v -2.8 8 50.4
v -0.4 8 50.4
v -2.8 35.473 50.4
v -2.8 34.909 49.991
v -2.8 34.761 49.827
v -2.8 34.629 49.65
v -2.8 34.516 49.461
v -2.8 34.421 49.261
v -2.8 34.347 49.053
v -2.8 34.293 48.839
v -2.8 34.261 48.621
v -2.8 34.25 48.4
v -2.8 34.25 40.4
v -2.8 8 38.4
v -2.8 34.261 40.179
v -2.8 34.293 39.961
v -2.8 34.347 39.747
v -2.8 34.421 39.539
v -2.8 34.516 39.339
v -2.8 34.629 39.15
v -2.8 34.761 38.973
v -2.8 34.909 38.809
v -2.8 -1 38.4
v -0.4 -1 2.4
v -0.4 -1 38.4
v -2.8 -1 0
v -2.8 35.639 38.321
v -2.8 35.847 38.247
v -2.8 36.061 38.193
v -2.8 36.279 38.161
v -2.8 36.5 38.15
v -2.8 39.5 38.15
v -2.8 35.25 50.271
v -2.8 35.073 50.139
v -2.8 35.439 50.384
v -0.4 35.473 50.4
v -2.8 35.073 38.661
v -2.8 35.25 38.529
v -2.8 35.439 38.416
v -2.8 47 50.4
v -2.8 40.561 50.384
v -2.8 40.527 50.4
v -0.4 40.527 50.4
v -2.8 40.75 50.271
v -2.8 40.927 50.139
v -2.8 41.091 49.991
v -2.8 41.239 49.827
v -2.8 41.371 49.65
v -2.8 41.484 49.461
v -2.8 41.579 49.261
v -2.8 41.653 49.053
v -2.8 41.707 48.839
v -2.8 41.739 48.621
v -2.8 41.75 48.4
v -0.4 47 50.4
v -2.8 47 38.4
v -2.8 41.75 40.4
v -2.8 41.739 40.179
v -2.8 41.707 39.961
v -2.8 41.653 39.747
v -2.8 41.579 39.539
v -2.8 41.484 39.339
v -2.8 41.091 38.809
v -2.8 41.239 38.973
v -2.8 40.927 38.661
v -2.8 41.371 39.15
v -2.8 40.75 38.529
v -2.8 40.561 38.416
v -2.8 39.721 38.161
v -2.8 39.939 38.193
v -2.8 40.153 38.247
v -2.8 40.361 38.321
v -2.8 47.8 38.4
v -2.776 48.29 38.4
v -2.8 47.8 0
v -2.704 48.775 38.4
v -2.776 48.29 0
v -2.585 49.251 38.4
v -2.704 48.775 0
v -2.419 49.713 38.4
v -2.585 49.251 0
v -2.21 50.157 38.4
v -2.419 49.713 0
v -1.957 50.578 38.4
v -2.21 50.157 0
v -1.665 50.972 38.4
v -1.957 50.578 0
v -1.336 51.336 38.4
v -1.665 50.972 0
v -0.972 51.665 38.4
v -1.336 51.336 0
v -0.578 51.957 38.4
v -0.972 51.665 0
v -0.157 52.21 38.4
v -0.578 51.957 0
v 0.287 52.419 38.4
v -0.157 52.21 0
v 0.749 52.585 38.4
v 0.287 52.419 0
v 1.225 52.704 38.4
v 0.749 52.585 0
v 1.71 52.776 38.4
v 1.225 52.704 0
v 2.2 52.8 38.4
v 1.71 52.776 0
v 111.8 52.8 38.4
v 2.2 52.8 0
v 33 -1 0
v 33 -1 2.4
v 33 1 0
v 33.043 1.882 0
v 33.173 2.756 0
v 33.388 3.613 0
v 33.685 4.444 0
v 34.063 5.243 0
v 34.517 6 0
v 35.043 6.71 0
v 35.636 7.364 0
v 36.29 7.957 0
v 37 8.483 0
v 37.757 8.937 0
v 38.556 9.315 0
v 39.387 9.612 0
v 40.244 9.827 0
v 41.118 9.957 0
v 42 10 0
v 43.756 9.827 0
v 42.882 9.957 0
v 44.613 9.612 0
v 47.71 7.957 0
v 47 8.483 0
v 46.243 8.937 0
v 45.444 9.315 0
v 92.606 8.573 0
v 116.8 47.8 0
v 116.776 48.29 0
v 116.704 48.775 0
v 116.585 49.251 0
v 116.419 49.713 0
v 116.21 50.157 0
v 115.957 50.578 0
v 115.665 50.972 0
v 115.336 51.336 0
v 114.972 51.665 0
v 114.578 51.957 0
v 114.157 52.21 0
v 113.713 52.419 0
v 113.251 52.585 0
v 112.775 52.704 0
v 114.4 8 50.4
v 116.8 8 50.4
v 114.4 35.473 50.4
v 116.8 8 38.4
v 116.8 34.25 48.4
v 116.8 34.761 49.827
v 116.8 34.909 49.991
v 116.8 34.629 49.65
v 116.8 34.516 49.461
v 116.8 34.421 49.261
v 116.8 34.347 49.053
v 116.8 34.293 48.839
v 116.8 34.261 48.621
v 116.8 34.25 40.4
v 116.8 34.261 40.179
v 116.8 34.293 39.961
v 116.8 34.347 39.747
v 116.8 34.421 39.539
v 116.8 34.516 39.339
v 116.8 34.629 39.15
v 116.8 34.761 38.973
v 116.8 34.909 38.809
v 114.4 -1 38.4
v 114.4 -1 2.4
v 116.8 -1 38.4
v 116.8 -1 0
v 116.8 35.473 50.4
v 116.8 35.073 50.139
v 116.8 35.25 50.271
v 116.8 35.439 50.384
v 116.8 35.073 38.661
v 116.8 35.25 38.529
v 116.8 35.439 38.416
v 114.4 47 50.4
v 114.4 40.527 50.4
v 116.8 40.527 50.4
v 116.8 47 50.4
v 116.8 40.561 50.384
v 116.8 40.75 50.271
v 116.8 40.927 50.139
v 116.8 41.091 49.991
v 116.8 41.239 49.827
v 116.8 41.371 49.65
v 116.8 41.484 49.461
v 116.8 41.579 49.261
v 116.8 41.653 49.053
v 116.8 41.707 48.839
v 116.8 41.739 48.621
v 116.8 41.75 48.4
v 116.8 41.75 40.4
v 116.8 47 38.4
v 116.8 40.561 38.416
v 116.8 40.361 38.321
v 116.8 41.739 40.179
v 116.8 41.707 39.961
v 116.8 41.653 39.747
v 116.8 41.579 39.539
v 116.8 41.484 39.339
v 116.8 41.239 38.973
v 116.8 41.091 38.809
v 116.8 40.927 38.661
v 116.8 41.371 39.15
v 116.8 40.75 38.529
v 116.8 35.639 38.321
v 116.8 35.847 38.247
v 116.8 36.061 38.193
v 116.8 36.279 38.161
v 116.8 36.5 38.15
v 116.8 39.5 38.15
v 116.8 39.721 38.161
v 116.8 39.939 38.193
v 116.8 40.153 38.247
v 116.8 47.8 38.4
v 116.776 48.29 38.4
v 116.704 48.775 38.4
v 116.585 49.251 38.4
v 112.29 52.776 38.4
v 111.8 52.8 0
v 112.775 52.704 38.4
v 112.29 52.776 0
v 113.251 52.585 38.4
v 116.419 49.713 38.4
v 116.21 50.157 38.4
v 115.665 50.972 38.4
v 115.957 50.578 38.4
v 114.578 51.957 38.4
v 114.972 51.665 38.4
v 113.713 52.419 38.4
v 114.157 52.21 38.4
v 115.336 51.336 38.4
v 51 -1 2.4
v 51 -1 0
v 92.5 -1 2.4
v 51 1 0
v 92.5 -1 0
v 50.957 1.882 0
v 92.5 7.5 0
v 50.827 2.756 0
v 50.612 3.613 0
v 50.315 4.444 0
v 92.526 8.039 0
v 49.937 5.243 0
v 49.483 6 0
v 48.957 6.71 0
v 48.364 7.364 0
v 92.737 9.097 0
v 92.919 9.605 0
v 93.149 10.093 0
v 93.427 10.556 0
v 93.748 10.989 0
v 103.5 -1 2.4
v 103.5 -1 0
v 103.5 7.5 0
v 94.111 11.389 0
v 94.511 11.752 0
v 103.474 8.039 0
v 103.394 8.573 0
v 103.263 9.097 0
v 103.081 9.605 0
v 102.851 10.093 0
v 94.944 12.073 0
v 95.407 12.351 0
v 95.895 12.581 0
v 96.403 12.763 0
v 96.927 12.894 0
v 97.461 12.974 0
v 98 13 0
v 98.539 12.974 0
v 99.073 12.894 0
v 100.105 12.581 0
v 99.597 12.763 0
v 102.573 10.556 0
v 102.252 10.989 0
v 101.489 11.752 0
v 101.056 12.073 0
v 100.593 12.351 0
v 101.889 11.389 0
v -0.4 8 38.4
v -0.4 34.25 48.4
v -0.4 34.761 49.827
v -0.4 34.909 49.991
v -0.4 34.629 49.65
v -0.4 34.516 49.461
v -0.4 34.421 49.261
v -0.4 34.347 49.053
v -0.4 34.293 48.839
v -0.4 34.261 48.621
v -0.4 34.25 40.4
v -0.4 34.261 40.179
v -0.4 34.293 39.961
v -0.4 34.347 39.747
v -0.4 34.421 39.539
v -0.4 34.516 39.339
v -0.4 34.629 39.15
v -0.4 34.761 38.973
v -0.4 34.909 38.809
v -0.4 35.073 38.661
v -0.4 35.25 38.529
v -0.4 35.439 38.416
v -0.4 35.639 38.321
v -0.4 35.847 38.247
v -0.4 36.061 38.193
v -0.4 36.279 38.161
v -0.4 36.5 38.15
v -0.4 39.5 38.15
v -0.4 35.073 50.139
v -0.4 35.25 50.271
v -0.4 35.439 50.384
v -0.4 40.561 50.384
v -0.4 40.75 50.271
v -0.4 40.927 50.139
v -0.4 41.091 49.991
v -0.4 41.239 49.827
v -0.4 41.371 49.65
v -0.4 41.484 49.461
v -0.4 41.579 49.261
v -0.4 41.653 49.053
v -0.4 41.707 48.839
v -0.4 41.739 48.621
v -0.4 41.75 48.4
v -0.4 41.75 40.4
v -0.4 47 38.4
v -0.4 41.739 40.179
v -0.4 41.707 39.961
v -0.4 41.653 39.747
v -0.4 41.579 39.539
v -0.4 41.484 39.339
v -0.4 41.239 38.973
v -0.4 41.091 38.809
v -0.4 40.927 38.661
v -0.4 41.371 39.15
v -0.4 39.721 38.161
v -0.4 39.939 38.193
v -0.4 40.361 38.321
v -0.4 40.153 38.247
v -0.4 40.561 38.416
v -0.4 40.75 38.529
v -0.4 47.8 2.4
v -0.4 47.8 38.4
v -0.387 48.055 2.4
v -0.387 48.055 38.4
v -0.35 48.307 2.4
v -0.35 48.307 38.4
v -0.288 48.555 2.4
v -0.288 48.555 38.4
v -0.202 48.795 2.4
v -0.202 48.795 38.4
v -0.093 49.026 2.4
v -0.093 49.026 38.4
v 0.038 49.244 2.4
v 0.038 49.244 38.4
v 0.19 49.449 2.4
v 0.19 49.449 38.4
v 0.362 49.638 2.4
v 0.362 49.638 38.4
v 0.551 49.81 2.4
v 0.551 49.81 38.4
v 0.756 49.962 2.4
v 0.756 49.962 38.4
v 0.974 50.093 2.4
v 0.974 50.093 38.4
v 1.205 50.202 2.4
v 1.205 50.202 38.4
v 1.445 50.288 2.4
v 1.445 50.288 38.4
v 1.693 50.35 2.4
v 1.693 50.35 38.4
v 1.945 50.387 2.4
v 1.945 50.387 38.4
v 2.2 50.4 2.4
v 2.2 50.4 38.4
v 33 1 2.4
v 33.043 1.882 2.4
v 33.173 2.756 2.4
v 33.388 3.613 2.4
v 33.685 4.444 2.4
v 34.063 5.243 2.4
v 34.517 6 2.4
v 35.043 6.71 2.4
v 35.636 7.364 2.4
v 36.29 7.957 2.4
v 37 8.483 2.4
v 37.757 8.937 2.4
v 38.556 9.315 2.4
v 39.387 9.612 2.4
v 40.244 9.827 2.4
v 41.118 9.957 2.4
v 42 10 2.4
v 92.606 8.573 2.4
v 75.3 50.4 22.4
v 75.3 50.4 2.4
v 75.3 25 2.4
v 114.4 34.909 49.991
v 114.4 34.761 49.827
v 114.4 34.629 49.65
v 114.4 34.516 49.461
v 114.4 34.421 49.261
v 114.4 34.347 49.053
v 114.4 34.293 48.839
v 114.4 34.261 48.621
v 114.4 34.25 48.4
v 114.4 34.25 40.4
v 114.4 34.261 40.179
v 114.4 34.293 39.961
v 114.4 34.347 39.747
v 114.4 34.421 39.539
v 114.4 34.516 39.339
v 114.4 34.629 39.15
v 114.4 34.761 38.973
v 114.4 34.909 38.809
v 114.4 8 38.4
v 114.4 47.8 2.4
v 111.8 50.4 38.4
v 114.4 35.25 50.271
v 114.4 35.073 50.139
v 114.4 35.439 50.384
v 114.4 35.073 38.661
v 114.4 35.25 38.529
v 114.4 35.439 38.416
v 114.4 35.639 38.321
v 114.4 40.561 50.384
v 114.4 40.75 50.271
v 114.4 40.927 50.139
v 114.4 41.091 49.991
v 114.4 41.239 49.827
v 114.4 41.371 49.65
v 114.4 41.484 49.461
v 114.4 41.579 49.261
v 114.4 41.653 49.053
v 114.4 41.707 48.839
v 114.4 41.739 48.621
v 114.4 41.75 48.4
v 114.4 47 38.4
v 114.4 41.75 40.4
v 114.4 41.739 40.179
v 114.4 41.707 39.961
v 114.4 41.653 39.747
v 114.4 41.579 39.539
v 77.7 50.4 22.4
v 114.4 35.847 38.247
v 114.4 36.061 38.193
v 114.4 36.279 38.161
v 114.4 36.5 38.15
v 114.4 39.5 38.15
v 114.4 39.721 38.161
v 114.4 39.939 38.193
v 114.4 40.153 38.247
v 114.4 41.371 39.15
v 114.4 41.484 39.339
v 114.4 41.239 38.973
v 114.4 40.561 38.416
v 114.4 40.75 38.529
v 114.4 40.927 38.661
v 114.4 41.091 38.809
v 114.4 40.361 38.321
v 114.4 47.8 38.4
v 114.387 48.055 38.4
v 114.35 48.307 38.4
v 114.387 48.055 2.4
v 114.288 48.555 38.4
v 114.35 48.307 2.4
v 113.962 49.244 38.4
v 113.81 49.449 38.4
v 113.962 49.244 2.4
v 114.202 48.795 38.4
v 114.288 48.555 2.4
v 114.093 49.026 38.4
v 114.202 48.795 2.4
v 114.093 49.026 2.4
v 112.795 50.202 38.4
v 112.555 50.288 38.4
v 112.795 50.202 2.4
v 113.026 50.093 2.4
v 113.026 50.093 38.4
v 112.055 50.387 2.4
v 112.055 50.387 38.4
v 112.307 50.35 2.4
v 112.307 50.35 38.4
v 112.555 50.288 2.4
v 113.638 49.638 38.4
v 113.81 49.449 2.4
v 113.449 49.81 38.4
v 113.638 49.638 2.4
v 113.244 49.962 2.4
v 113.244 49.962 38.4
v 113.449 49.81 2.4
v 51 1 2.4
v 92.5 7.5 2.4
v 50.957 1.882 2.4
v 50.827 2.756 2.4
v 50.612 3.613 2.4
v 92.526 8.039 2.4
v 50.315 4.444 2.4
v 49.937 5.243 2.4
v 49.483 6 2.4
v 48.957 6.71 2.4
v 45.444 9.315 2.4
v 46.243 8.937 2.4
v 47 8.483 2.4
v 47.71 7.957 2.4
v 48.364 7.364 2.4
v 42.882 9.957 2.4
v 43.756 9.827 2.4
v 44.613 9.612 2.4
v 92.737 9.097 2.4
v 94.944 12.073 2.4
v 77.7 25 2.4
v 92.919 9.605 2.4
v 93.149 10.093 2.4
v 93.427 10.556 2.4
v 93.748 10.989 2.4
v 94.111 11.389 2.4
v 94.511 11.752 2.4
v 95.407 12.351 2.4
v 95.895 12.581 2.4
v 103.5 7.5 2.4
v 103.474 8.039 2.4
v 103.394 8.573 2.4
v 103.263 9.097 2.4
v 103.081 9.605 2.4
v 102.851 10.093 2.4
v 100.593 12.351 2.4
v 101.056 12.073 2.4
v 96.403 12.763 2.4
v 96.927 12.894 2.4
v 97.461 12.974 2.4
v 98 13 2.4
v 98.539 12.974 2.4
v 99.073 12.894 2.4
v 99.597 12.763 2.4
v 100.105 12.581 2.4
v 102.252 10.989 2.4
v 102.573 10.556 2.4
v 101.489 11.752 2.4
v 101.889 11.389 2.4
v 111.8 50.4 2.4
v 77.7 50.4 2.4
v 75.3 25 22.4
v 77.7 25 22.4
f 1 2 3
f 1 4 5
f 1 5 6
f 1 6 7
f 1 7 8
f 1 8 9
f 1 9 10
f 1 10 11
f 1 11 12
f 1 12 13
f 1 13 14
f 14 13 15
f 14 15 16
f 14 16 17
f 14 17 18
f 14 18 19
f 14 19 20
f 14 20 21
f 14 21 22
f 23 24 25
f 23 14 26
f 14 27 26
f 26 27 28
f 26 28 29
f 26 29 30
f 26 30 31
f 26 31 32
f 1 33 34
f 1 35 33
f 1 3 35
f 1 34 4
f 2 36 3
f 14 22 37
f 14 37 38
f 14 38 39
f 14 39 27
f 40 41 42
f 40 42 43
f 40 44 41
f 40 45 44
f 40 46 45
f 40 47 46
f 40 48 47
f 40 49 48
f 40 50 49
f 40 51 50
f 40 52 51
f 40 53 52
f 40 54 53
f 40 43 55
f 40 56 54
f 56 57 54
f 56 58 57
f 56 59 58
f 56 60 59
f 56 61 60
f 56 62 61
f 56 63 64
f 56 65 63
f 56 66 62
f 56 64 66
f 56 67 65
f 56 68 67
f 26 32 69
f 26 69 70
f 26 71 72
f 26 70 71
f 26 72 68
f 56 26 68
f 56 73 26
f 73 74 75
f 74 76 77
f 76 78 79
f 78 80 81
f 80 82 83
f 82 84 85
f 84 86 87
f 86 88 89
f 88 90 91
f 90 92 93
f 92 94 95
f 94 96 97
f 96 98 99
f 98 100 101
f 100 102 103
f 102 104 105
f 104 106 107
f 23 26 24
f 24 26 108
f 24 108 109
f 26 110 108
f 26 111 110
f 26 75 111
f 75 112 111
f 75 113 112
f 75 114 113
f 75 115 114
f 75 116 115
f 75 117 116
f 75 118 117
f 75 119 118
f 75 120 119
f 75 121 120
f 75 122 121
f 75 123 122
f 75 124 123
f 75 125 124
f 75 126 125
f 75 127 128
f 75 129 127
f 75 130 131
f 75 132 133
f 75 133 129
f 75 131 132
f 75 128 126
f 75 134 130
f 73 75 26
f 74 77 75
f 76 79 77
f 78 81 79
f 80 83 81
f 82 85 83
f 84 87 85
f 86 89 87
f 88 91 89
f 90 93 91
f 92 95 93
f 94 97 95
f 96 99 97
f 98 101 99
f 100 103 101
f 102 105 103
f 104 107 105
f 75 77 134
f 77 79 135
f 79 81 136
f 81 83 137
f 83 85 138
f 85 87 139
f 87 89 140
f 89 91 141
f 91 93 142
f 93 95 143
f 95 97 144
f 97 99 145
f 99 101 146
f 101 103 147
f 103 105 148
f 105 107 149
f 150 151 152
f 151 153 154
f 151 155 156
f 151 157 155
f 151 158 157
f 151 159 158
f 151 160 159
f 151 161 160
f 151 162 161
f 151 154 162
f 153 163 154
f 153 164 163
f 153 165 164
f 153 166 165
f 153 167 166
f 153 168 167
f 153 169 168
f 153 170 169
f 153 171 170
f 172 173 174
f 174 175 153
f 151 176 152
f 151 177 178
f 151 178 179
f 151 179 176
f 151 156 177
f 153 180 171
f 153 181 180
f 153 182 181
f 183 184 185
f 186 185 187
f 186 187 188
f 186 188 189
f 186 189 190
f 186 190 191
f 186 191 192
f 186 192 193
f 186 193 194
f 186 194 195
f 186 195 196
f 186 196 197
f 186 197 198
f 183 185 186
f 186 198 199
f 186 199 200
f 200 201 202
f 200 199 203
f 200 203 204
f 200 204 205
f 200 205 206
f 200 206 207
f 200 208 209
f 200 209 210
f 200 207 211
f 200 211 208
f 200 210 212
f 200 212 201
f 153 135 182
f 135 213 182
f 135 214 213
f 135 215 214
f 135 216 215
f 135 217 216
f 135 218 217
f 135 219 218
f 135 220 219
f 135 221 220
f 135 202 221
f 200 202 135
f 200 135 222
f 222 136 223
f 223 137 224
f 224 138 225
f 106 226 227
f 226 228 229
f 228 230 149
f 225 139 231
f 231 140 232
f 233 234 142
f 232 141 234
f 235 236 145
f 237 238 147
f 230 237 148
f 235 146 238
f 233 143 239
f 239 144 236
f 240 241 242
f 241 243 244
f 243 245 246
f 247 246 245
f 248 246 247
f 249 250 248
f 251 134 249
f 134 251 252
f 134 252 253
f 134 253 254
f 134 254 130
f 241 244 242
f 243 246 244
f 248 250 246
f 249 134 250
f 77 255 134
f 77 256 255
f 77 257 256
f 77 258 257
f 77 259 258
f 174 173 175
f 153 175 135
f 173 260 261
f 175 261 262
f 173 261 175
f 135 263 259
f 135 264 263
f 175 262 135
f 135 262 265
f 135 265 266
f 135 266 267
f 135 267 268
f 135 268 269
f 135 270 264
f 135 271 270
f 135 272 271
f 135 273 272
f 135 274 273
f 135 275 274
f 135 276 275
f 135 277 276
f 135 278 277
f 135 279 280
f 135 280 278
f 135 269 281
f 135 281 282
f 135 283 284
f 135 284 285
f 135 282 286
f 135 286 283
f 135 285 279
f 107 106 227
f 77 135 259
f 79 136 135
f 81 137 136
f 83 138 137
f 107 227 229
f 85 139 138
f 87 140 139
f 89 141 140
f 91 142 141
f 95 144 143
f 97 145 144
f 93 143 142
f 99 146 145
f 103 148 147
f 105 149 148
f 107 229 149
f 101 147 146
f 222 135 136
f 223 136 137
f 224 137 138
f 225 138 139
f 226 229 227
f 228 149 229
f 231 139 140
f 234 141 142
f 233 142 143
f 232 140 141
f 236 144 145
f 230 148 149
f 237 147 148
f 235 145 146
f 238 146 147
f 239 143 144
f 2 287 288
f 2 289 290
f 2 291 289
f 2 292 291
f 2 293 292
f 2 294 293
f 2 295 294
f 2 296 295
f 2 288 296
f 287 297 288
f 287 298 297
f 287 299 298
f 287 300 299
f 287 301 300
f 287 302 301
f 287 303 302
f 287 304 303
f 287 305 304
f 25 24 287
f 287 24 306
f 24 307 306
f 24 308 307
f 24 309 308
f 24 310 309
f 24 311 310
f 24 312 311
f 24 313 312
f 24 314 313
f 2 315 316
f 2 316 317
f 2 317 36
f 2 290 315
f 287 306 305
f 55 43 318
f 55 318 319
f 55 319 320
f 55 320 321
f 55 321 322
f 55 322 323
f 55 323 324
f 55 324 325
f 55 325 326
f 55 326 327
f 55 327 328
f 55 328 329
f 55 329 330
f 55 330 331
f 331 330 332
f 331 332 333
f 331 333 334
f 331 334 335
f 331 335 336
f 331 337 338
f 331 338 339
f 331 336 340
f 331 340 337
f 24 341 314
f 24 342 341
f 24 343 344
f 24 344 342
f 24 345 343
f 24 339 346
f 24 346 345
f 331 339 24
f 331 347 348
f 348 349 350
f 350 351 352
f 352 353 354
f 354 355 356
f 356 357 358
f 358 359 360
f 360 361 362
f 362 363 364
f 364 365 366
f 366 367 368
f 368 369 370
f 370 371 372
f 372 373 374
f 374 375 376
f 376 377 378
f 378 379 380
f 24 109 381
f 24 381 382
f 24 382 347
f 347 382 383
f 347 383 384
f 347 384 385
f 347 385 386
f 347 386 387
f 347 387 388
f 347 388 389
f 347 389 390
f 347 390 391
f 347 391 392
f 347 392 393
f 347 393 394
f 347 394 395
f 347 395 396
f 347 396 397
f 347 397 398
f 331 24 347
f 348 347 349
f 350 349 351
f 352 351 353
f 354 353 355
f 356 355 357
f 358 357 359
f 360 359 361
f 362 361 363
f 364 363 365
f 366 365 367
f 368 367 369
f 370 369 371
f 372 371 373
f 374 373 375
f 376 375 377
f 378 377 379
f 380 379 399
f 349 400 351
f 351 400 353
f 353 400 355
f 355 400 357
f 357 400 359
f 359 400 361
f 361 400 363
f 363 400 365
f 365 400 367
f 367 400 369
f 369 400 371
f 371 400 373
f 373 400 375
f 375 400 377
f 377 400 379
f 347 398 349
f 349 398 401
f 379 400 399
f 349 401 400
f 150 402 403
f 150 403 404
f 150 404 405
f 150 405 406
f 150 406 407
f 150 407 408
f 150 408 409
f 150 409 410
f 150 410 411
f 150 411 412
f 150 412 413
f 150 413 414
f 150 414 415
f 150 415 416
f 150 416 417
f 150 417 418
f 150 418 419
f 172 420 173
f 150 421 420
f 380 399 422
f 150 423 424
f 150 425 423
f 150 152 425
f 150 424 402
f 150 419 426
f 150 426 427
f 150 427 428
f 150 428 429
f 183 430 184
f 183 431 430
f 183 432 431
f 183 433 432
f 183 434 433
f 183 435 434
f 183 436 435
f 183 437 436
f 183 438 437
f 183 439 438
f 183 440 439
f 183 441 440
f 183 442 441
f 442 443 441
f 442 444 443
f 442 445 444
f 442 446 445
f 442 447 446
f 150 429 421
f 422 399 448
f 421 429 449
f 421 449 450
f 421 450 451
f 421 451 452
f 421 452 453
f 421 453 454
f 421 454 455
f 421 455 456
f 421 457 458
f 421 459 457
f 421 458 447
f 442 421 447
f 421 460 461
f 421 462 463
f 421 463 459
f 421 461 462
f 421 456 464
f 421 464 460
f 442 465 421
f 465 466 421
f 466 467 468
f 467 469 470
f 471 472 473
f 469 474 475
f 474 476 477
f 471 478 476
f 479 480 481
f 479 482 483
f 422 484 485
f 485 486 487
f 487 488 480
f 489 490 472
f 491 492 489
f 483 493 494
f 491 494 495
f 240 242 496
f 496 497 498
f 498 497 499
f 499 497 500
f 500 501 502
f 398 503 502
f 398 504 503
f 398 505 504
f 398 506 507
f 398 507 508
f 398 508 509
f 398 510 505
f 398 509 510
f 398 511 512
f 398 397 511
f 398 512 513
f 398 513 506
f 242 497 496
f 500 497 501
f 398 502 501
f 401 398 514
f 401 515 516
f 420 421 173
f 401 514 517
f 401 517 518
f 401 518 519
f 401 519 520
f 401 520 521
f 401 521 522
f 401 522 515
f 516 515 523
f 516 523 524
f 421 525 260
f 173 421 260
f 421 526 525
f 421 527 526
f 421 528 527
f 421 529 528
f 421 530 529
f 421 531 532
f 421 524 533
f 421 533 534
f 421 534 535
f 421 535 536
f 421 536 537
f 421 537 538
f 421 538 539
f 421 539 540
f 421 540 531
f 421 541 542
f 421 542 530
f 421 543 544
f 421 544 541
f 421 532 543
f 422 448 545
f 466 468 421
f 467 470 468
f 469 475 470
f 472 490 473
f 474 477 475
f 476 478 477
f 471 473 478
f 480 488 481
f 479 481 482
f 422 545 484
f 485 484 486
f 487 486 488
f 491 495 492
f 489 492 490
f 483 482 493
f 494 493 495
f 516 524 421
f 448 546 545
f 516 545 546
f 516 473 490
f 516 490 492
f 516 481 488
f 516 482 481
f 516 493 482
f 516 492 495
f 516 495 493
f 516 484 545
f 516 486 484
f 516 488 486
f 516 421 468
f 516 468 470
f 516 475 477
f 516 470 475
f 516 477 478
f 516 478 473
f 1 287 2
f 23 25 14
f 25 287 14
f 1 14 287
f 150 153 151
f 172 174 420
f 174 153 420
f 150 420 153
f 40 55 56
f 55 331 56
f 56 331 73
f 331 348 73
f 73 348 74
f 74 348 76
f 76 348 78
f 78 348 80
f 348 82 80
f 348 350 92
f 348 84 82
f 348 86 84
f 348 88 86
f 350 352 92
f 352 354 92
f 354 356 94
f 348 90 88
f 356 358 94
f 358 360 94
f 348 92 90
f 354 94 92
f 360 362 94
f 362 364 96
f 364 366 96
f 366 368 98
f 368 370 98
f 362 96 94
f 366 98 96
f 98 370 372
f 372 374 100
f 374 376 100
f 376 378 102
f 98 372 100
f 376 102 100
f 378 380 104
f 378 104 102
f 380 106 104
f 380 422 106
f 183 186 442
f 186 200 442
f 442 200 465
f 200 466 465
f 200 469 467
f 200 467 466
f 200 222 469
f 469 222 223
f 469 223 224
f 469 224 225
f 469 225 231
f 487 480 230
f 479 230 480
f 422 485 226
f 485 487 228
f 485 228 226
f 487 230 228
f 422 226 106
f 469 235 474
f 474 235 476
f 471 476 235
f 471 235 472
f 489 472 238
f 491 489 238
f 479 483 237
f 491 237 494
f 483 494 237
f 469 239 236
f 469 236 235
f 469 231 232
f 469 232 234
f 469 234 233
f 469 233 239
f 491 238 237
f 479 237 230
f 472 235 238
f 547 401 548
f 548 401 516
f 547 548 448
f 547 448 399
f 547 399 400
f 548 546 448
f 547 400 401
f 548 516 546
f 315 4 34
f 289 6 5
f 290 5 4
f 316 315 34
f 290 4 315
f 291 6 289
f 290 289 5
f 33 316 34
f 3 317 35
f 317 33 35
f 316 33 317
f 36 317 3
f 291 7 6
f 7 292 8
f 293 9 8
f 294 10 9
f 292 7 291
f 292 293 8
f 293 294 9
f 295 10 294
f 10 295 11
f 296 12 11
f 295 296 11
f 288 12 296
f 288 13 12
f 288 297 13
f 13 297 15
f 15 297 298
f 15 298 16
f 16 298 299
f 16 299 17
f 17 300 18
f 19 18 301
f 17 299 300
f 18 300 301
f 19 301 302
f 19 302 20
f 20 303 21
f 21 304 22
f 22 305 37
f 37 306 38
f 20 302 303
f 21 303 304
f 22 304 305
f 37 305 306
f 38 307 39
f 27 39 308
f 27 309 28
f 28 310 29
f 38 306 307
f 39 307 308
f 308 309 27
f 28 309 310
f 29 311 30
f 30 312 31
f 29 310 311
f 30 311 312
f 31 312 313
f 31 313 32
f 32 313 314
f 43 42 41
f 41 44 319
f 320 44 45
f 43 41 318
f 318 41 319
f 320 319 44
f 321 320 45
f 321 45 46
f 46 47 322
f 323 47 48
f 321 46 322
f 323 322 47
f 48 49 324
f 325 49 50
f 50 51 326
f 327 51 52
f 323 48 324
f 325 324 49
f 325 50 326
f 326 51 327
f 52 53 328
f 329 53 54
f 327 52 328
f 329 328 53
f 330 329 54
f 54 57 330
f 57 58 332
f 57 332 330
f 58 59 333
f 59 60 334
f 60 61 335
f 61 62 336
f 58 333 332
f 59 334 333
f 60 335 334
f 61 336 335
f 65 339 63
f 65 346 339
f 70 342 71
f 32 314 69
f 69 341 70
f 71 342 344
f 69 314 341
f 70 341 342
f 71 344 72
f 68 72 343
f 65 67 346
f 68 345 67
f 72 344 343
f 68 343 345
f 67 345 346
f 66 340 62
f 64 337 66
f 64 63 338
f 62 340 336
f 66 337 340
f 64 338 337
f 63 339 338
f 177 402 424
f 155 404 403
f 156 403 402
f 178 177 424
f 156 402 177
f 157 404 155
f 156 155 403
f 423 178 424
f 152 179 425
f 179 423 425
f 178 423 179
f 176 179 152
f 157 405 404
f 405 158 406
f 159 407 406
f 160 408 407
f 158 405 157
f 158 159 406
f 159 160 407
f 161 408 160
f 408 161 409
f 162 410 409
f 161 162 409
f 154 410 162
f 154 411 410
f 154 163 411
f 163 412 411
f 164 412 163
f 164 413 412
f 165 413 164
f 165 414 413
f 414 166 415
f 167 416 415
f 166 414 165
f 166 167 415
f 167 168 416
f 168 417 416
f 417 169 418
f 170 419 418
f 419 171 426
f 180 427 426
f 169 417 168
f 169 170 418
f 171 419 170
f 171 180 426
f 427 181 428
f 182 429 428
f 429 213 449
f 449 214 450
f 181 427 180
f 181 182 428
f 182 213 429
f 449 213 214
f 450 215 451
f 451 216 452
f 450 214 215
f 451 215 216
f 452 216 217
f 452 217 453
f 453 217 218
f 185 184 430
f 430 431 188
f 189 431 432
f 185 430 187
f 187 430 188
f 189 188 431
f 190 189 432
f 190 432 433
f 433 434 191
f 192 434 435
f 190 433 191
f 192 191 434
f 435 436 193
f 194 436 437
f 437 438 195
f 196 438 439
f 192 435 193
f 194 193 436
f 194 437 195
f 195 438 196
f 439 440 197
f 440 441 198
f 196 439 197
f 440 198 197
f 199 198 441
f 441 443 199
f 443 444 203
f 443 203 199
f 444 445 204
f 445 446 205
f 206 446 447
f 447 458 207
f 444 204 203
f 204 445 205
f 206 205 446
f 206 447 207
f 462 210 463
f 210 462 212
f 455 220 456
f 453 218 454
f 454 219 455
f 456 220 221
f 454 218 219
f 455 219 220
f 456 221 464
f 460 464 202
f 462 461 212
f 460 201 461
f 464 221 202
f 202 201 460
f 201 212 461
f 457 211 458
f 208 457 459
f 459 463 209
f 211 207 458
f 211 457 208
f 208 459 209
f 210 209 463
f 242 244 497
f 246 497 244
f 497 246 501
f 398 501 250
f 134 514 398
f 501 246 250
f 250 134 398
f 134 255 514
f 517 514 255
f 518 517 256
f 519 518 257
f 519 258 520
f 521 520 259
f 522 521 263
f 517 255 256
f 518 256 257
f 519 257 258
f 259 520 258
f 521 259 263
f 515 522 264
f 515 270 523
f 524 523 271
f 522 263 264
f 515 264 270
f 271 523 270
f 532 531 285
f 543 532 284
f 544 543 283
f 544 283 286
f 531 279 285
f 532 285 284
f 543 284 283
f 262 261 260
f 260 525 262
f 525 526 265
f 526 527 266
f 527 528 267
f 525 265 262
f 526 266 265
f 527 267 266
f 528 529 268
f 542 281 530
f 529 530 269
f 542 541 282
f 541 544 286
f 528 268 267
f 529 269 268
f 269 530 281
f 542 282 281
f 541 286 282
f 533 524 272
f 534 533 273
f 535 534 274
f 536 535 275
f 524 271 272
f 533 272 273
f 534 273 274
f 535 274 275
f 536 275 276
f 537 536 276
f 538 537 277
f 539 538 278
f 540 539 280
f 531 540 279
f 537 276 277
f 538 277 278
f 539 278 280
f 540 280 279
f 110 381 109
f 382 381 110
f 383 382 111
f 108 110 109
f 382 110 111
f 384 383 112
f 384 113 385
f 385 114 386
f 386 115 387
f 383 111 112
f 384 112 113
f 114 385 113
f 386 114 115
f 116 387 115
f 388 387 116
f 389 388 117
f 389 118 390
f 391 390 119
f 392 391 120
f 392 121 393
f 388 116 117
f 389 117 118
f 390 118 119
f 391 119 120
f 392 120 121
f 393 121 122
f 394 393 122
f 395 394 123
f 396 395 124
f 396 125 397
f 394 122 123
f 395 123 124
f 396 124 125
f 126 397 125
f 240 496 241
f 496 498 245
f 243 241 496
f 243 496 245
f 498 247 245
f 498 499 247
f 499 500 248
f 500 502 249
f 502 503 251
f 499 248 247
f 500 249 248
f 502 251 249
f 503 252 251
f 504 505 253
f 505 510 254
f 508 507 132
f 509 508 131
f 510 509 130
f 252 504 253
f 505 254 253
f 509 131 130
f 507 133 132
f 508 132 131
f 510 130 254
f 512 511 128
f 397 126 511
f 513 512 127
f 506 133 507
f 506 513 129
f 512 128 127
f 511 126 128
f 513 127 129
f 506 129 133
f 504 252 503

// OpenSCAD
// Terminal cover for the Site A S-400-12 PSU (Rob, 30 Oct 2026). PETG.
//
// A hood over the PSU's open terminal end: top, sides and end wall, open underneath. It
// slides on from the end and is held by two M4 × 6 screws into the case's threaded side
// holes, so it takes a tool to get it off. Don't use longer screws: past about 3mm they
// reach into the PSU. The slots allow for the hole positions being estimates.
//
// A rib between -V and earth keeps the mains side apart from the 12V side, and each side
// has its own cable notch in the end wall, open at the bottom so the hood fits over
// wired cables. Anchor the mains lead in the cord grip: this cover doesn't grip it.
//
// Facing the terminals, left to right (the PSU's own markings): ADJ, +V × 3, -V × 3,
// earth, N, L. The trim and the LED are under the hood: take it off to adjust.
//
// Printing, no supports: end wall on the bed.
//
// Frame: x across from the case's left side, facing the terminals; y outwards from the
// tips of the case's side lips; z up from the underside of the case.
//
// UNVERIFIED: every size here is scaled from Rob's photos, using his case size of
// 217 × 114 × 50. Offer up the print before wiring: check the side holes line up with
// the slots and that the case's side screws clear the tabs.

part = "print";          // "print", "fitted"

case_w      = 114;
case_h      = 50;
fit         = 0.4;       // each side, and over the top
wall        = 2.4;
end_t       = 2.4;
y_end       = 10;        // inside of the end wall, past the lip tips: room for the cables
y_lid       = -23;       // where the case's lid stops
y_skirt     = -26;       // the top and full sides stop here, just over the lid
y_tab       = -38;       // the tabs run on to the side holes
tab_z       = [8, 47];   // the tabs' height, leaving 5mm of tab above the slots
hole_y      = -32;       // the case's side holes, from the lip tips
hole_z      = 38;
slot_d      = 4.5;
slot_y      = 4;         // slot travel each way
slot_z      = 1.5;

divide_x    = 76.5;      // the rib, between -V and earth
rib_t       = 2.4;
rib_y       = -10;
rib_z       = 25;        // above the terminal block
mains_x     = 98;        // cable notches in the end wall
mains_w     = 11;
mains_h     = 13;
low_x       = 42;
low_w       = 18;
low_h       = 10;

corner_r    = 5;
$fn = 64;

W = case_w + 2 * (fit + wall);
H = case_h + fit + wall;
x0 = -fit - wall;
y1 = y_end + end_t;

// Rounded top corners, square bottom, in x-z, extruded along y
module xz_prof(x, w, h, r, y0, y1) {
    translate([x, y1, 0]) rotate([90, 0, 0]) linear_extrude(y1 - y0) hull() {
        translate([r, h - r]) circle(r = r);
        translate([w - r, h - r]) circle(r = r);
        translate([0, -1]) square([w, 1]);
    }
}

module notch(x, w, h) {            // U in the end wall, open at the bottom
    translate([x, y_end - 1, 0]) rotate([-90, 0, 0]) linear_extrude(end_t + 2) hull() {
        translate([0, -h + w / 2]) circle(d = w);
        translate([-w / 2, 1]) square([w, 1]);
    }
}

module cover() {
    difference() {
        union() {
            difference() {
                xz_prof(x0, W, H, corner_r, y_tab, y1);
                xz_prof(-fit, case_w + 2 * fit, case_h + fit, corner_r - wall, y_tab - 1, y_end);
                translate([x0 - 1, y_tab - 1, -2]) cube([W + 2, y_skirt - y_tab + 1, tab_z[0] + 2]);    // the tabs
                translate([x0 - 1, y_tab - 1, tab_z[1]]) cube([W + 2, y_skirt - y_tab + 1, H]);
            }
            translate([divide_x - rib_t / 2, rib_y, rib_z]) cube([rib_t, y_end - rib_y + 0.01, case_h + fit - rib_z + 0.5]);
        }
        notch(mains_x, mains_w, mains_h);
        notch(low_x, low_w, low_h);
        for (x = [x0 - 1, case_w + fit - 1]) translate([x, 0, 0]) hull()
            for (dy = [-slot_y, slot_y], dz = [-slot_z, slot_z])
                translate([0, hole_y + dy, hole_z + dz]) rotate([0, 90, 0]) cylinder(d = slot_d, h = wall + 2);
    }
}

if (part == "fitted") cover();
else translate([0, 0, y1]) rotate([-90, 0, 0]) cover();                         // end wall on the bed
